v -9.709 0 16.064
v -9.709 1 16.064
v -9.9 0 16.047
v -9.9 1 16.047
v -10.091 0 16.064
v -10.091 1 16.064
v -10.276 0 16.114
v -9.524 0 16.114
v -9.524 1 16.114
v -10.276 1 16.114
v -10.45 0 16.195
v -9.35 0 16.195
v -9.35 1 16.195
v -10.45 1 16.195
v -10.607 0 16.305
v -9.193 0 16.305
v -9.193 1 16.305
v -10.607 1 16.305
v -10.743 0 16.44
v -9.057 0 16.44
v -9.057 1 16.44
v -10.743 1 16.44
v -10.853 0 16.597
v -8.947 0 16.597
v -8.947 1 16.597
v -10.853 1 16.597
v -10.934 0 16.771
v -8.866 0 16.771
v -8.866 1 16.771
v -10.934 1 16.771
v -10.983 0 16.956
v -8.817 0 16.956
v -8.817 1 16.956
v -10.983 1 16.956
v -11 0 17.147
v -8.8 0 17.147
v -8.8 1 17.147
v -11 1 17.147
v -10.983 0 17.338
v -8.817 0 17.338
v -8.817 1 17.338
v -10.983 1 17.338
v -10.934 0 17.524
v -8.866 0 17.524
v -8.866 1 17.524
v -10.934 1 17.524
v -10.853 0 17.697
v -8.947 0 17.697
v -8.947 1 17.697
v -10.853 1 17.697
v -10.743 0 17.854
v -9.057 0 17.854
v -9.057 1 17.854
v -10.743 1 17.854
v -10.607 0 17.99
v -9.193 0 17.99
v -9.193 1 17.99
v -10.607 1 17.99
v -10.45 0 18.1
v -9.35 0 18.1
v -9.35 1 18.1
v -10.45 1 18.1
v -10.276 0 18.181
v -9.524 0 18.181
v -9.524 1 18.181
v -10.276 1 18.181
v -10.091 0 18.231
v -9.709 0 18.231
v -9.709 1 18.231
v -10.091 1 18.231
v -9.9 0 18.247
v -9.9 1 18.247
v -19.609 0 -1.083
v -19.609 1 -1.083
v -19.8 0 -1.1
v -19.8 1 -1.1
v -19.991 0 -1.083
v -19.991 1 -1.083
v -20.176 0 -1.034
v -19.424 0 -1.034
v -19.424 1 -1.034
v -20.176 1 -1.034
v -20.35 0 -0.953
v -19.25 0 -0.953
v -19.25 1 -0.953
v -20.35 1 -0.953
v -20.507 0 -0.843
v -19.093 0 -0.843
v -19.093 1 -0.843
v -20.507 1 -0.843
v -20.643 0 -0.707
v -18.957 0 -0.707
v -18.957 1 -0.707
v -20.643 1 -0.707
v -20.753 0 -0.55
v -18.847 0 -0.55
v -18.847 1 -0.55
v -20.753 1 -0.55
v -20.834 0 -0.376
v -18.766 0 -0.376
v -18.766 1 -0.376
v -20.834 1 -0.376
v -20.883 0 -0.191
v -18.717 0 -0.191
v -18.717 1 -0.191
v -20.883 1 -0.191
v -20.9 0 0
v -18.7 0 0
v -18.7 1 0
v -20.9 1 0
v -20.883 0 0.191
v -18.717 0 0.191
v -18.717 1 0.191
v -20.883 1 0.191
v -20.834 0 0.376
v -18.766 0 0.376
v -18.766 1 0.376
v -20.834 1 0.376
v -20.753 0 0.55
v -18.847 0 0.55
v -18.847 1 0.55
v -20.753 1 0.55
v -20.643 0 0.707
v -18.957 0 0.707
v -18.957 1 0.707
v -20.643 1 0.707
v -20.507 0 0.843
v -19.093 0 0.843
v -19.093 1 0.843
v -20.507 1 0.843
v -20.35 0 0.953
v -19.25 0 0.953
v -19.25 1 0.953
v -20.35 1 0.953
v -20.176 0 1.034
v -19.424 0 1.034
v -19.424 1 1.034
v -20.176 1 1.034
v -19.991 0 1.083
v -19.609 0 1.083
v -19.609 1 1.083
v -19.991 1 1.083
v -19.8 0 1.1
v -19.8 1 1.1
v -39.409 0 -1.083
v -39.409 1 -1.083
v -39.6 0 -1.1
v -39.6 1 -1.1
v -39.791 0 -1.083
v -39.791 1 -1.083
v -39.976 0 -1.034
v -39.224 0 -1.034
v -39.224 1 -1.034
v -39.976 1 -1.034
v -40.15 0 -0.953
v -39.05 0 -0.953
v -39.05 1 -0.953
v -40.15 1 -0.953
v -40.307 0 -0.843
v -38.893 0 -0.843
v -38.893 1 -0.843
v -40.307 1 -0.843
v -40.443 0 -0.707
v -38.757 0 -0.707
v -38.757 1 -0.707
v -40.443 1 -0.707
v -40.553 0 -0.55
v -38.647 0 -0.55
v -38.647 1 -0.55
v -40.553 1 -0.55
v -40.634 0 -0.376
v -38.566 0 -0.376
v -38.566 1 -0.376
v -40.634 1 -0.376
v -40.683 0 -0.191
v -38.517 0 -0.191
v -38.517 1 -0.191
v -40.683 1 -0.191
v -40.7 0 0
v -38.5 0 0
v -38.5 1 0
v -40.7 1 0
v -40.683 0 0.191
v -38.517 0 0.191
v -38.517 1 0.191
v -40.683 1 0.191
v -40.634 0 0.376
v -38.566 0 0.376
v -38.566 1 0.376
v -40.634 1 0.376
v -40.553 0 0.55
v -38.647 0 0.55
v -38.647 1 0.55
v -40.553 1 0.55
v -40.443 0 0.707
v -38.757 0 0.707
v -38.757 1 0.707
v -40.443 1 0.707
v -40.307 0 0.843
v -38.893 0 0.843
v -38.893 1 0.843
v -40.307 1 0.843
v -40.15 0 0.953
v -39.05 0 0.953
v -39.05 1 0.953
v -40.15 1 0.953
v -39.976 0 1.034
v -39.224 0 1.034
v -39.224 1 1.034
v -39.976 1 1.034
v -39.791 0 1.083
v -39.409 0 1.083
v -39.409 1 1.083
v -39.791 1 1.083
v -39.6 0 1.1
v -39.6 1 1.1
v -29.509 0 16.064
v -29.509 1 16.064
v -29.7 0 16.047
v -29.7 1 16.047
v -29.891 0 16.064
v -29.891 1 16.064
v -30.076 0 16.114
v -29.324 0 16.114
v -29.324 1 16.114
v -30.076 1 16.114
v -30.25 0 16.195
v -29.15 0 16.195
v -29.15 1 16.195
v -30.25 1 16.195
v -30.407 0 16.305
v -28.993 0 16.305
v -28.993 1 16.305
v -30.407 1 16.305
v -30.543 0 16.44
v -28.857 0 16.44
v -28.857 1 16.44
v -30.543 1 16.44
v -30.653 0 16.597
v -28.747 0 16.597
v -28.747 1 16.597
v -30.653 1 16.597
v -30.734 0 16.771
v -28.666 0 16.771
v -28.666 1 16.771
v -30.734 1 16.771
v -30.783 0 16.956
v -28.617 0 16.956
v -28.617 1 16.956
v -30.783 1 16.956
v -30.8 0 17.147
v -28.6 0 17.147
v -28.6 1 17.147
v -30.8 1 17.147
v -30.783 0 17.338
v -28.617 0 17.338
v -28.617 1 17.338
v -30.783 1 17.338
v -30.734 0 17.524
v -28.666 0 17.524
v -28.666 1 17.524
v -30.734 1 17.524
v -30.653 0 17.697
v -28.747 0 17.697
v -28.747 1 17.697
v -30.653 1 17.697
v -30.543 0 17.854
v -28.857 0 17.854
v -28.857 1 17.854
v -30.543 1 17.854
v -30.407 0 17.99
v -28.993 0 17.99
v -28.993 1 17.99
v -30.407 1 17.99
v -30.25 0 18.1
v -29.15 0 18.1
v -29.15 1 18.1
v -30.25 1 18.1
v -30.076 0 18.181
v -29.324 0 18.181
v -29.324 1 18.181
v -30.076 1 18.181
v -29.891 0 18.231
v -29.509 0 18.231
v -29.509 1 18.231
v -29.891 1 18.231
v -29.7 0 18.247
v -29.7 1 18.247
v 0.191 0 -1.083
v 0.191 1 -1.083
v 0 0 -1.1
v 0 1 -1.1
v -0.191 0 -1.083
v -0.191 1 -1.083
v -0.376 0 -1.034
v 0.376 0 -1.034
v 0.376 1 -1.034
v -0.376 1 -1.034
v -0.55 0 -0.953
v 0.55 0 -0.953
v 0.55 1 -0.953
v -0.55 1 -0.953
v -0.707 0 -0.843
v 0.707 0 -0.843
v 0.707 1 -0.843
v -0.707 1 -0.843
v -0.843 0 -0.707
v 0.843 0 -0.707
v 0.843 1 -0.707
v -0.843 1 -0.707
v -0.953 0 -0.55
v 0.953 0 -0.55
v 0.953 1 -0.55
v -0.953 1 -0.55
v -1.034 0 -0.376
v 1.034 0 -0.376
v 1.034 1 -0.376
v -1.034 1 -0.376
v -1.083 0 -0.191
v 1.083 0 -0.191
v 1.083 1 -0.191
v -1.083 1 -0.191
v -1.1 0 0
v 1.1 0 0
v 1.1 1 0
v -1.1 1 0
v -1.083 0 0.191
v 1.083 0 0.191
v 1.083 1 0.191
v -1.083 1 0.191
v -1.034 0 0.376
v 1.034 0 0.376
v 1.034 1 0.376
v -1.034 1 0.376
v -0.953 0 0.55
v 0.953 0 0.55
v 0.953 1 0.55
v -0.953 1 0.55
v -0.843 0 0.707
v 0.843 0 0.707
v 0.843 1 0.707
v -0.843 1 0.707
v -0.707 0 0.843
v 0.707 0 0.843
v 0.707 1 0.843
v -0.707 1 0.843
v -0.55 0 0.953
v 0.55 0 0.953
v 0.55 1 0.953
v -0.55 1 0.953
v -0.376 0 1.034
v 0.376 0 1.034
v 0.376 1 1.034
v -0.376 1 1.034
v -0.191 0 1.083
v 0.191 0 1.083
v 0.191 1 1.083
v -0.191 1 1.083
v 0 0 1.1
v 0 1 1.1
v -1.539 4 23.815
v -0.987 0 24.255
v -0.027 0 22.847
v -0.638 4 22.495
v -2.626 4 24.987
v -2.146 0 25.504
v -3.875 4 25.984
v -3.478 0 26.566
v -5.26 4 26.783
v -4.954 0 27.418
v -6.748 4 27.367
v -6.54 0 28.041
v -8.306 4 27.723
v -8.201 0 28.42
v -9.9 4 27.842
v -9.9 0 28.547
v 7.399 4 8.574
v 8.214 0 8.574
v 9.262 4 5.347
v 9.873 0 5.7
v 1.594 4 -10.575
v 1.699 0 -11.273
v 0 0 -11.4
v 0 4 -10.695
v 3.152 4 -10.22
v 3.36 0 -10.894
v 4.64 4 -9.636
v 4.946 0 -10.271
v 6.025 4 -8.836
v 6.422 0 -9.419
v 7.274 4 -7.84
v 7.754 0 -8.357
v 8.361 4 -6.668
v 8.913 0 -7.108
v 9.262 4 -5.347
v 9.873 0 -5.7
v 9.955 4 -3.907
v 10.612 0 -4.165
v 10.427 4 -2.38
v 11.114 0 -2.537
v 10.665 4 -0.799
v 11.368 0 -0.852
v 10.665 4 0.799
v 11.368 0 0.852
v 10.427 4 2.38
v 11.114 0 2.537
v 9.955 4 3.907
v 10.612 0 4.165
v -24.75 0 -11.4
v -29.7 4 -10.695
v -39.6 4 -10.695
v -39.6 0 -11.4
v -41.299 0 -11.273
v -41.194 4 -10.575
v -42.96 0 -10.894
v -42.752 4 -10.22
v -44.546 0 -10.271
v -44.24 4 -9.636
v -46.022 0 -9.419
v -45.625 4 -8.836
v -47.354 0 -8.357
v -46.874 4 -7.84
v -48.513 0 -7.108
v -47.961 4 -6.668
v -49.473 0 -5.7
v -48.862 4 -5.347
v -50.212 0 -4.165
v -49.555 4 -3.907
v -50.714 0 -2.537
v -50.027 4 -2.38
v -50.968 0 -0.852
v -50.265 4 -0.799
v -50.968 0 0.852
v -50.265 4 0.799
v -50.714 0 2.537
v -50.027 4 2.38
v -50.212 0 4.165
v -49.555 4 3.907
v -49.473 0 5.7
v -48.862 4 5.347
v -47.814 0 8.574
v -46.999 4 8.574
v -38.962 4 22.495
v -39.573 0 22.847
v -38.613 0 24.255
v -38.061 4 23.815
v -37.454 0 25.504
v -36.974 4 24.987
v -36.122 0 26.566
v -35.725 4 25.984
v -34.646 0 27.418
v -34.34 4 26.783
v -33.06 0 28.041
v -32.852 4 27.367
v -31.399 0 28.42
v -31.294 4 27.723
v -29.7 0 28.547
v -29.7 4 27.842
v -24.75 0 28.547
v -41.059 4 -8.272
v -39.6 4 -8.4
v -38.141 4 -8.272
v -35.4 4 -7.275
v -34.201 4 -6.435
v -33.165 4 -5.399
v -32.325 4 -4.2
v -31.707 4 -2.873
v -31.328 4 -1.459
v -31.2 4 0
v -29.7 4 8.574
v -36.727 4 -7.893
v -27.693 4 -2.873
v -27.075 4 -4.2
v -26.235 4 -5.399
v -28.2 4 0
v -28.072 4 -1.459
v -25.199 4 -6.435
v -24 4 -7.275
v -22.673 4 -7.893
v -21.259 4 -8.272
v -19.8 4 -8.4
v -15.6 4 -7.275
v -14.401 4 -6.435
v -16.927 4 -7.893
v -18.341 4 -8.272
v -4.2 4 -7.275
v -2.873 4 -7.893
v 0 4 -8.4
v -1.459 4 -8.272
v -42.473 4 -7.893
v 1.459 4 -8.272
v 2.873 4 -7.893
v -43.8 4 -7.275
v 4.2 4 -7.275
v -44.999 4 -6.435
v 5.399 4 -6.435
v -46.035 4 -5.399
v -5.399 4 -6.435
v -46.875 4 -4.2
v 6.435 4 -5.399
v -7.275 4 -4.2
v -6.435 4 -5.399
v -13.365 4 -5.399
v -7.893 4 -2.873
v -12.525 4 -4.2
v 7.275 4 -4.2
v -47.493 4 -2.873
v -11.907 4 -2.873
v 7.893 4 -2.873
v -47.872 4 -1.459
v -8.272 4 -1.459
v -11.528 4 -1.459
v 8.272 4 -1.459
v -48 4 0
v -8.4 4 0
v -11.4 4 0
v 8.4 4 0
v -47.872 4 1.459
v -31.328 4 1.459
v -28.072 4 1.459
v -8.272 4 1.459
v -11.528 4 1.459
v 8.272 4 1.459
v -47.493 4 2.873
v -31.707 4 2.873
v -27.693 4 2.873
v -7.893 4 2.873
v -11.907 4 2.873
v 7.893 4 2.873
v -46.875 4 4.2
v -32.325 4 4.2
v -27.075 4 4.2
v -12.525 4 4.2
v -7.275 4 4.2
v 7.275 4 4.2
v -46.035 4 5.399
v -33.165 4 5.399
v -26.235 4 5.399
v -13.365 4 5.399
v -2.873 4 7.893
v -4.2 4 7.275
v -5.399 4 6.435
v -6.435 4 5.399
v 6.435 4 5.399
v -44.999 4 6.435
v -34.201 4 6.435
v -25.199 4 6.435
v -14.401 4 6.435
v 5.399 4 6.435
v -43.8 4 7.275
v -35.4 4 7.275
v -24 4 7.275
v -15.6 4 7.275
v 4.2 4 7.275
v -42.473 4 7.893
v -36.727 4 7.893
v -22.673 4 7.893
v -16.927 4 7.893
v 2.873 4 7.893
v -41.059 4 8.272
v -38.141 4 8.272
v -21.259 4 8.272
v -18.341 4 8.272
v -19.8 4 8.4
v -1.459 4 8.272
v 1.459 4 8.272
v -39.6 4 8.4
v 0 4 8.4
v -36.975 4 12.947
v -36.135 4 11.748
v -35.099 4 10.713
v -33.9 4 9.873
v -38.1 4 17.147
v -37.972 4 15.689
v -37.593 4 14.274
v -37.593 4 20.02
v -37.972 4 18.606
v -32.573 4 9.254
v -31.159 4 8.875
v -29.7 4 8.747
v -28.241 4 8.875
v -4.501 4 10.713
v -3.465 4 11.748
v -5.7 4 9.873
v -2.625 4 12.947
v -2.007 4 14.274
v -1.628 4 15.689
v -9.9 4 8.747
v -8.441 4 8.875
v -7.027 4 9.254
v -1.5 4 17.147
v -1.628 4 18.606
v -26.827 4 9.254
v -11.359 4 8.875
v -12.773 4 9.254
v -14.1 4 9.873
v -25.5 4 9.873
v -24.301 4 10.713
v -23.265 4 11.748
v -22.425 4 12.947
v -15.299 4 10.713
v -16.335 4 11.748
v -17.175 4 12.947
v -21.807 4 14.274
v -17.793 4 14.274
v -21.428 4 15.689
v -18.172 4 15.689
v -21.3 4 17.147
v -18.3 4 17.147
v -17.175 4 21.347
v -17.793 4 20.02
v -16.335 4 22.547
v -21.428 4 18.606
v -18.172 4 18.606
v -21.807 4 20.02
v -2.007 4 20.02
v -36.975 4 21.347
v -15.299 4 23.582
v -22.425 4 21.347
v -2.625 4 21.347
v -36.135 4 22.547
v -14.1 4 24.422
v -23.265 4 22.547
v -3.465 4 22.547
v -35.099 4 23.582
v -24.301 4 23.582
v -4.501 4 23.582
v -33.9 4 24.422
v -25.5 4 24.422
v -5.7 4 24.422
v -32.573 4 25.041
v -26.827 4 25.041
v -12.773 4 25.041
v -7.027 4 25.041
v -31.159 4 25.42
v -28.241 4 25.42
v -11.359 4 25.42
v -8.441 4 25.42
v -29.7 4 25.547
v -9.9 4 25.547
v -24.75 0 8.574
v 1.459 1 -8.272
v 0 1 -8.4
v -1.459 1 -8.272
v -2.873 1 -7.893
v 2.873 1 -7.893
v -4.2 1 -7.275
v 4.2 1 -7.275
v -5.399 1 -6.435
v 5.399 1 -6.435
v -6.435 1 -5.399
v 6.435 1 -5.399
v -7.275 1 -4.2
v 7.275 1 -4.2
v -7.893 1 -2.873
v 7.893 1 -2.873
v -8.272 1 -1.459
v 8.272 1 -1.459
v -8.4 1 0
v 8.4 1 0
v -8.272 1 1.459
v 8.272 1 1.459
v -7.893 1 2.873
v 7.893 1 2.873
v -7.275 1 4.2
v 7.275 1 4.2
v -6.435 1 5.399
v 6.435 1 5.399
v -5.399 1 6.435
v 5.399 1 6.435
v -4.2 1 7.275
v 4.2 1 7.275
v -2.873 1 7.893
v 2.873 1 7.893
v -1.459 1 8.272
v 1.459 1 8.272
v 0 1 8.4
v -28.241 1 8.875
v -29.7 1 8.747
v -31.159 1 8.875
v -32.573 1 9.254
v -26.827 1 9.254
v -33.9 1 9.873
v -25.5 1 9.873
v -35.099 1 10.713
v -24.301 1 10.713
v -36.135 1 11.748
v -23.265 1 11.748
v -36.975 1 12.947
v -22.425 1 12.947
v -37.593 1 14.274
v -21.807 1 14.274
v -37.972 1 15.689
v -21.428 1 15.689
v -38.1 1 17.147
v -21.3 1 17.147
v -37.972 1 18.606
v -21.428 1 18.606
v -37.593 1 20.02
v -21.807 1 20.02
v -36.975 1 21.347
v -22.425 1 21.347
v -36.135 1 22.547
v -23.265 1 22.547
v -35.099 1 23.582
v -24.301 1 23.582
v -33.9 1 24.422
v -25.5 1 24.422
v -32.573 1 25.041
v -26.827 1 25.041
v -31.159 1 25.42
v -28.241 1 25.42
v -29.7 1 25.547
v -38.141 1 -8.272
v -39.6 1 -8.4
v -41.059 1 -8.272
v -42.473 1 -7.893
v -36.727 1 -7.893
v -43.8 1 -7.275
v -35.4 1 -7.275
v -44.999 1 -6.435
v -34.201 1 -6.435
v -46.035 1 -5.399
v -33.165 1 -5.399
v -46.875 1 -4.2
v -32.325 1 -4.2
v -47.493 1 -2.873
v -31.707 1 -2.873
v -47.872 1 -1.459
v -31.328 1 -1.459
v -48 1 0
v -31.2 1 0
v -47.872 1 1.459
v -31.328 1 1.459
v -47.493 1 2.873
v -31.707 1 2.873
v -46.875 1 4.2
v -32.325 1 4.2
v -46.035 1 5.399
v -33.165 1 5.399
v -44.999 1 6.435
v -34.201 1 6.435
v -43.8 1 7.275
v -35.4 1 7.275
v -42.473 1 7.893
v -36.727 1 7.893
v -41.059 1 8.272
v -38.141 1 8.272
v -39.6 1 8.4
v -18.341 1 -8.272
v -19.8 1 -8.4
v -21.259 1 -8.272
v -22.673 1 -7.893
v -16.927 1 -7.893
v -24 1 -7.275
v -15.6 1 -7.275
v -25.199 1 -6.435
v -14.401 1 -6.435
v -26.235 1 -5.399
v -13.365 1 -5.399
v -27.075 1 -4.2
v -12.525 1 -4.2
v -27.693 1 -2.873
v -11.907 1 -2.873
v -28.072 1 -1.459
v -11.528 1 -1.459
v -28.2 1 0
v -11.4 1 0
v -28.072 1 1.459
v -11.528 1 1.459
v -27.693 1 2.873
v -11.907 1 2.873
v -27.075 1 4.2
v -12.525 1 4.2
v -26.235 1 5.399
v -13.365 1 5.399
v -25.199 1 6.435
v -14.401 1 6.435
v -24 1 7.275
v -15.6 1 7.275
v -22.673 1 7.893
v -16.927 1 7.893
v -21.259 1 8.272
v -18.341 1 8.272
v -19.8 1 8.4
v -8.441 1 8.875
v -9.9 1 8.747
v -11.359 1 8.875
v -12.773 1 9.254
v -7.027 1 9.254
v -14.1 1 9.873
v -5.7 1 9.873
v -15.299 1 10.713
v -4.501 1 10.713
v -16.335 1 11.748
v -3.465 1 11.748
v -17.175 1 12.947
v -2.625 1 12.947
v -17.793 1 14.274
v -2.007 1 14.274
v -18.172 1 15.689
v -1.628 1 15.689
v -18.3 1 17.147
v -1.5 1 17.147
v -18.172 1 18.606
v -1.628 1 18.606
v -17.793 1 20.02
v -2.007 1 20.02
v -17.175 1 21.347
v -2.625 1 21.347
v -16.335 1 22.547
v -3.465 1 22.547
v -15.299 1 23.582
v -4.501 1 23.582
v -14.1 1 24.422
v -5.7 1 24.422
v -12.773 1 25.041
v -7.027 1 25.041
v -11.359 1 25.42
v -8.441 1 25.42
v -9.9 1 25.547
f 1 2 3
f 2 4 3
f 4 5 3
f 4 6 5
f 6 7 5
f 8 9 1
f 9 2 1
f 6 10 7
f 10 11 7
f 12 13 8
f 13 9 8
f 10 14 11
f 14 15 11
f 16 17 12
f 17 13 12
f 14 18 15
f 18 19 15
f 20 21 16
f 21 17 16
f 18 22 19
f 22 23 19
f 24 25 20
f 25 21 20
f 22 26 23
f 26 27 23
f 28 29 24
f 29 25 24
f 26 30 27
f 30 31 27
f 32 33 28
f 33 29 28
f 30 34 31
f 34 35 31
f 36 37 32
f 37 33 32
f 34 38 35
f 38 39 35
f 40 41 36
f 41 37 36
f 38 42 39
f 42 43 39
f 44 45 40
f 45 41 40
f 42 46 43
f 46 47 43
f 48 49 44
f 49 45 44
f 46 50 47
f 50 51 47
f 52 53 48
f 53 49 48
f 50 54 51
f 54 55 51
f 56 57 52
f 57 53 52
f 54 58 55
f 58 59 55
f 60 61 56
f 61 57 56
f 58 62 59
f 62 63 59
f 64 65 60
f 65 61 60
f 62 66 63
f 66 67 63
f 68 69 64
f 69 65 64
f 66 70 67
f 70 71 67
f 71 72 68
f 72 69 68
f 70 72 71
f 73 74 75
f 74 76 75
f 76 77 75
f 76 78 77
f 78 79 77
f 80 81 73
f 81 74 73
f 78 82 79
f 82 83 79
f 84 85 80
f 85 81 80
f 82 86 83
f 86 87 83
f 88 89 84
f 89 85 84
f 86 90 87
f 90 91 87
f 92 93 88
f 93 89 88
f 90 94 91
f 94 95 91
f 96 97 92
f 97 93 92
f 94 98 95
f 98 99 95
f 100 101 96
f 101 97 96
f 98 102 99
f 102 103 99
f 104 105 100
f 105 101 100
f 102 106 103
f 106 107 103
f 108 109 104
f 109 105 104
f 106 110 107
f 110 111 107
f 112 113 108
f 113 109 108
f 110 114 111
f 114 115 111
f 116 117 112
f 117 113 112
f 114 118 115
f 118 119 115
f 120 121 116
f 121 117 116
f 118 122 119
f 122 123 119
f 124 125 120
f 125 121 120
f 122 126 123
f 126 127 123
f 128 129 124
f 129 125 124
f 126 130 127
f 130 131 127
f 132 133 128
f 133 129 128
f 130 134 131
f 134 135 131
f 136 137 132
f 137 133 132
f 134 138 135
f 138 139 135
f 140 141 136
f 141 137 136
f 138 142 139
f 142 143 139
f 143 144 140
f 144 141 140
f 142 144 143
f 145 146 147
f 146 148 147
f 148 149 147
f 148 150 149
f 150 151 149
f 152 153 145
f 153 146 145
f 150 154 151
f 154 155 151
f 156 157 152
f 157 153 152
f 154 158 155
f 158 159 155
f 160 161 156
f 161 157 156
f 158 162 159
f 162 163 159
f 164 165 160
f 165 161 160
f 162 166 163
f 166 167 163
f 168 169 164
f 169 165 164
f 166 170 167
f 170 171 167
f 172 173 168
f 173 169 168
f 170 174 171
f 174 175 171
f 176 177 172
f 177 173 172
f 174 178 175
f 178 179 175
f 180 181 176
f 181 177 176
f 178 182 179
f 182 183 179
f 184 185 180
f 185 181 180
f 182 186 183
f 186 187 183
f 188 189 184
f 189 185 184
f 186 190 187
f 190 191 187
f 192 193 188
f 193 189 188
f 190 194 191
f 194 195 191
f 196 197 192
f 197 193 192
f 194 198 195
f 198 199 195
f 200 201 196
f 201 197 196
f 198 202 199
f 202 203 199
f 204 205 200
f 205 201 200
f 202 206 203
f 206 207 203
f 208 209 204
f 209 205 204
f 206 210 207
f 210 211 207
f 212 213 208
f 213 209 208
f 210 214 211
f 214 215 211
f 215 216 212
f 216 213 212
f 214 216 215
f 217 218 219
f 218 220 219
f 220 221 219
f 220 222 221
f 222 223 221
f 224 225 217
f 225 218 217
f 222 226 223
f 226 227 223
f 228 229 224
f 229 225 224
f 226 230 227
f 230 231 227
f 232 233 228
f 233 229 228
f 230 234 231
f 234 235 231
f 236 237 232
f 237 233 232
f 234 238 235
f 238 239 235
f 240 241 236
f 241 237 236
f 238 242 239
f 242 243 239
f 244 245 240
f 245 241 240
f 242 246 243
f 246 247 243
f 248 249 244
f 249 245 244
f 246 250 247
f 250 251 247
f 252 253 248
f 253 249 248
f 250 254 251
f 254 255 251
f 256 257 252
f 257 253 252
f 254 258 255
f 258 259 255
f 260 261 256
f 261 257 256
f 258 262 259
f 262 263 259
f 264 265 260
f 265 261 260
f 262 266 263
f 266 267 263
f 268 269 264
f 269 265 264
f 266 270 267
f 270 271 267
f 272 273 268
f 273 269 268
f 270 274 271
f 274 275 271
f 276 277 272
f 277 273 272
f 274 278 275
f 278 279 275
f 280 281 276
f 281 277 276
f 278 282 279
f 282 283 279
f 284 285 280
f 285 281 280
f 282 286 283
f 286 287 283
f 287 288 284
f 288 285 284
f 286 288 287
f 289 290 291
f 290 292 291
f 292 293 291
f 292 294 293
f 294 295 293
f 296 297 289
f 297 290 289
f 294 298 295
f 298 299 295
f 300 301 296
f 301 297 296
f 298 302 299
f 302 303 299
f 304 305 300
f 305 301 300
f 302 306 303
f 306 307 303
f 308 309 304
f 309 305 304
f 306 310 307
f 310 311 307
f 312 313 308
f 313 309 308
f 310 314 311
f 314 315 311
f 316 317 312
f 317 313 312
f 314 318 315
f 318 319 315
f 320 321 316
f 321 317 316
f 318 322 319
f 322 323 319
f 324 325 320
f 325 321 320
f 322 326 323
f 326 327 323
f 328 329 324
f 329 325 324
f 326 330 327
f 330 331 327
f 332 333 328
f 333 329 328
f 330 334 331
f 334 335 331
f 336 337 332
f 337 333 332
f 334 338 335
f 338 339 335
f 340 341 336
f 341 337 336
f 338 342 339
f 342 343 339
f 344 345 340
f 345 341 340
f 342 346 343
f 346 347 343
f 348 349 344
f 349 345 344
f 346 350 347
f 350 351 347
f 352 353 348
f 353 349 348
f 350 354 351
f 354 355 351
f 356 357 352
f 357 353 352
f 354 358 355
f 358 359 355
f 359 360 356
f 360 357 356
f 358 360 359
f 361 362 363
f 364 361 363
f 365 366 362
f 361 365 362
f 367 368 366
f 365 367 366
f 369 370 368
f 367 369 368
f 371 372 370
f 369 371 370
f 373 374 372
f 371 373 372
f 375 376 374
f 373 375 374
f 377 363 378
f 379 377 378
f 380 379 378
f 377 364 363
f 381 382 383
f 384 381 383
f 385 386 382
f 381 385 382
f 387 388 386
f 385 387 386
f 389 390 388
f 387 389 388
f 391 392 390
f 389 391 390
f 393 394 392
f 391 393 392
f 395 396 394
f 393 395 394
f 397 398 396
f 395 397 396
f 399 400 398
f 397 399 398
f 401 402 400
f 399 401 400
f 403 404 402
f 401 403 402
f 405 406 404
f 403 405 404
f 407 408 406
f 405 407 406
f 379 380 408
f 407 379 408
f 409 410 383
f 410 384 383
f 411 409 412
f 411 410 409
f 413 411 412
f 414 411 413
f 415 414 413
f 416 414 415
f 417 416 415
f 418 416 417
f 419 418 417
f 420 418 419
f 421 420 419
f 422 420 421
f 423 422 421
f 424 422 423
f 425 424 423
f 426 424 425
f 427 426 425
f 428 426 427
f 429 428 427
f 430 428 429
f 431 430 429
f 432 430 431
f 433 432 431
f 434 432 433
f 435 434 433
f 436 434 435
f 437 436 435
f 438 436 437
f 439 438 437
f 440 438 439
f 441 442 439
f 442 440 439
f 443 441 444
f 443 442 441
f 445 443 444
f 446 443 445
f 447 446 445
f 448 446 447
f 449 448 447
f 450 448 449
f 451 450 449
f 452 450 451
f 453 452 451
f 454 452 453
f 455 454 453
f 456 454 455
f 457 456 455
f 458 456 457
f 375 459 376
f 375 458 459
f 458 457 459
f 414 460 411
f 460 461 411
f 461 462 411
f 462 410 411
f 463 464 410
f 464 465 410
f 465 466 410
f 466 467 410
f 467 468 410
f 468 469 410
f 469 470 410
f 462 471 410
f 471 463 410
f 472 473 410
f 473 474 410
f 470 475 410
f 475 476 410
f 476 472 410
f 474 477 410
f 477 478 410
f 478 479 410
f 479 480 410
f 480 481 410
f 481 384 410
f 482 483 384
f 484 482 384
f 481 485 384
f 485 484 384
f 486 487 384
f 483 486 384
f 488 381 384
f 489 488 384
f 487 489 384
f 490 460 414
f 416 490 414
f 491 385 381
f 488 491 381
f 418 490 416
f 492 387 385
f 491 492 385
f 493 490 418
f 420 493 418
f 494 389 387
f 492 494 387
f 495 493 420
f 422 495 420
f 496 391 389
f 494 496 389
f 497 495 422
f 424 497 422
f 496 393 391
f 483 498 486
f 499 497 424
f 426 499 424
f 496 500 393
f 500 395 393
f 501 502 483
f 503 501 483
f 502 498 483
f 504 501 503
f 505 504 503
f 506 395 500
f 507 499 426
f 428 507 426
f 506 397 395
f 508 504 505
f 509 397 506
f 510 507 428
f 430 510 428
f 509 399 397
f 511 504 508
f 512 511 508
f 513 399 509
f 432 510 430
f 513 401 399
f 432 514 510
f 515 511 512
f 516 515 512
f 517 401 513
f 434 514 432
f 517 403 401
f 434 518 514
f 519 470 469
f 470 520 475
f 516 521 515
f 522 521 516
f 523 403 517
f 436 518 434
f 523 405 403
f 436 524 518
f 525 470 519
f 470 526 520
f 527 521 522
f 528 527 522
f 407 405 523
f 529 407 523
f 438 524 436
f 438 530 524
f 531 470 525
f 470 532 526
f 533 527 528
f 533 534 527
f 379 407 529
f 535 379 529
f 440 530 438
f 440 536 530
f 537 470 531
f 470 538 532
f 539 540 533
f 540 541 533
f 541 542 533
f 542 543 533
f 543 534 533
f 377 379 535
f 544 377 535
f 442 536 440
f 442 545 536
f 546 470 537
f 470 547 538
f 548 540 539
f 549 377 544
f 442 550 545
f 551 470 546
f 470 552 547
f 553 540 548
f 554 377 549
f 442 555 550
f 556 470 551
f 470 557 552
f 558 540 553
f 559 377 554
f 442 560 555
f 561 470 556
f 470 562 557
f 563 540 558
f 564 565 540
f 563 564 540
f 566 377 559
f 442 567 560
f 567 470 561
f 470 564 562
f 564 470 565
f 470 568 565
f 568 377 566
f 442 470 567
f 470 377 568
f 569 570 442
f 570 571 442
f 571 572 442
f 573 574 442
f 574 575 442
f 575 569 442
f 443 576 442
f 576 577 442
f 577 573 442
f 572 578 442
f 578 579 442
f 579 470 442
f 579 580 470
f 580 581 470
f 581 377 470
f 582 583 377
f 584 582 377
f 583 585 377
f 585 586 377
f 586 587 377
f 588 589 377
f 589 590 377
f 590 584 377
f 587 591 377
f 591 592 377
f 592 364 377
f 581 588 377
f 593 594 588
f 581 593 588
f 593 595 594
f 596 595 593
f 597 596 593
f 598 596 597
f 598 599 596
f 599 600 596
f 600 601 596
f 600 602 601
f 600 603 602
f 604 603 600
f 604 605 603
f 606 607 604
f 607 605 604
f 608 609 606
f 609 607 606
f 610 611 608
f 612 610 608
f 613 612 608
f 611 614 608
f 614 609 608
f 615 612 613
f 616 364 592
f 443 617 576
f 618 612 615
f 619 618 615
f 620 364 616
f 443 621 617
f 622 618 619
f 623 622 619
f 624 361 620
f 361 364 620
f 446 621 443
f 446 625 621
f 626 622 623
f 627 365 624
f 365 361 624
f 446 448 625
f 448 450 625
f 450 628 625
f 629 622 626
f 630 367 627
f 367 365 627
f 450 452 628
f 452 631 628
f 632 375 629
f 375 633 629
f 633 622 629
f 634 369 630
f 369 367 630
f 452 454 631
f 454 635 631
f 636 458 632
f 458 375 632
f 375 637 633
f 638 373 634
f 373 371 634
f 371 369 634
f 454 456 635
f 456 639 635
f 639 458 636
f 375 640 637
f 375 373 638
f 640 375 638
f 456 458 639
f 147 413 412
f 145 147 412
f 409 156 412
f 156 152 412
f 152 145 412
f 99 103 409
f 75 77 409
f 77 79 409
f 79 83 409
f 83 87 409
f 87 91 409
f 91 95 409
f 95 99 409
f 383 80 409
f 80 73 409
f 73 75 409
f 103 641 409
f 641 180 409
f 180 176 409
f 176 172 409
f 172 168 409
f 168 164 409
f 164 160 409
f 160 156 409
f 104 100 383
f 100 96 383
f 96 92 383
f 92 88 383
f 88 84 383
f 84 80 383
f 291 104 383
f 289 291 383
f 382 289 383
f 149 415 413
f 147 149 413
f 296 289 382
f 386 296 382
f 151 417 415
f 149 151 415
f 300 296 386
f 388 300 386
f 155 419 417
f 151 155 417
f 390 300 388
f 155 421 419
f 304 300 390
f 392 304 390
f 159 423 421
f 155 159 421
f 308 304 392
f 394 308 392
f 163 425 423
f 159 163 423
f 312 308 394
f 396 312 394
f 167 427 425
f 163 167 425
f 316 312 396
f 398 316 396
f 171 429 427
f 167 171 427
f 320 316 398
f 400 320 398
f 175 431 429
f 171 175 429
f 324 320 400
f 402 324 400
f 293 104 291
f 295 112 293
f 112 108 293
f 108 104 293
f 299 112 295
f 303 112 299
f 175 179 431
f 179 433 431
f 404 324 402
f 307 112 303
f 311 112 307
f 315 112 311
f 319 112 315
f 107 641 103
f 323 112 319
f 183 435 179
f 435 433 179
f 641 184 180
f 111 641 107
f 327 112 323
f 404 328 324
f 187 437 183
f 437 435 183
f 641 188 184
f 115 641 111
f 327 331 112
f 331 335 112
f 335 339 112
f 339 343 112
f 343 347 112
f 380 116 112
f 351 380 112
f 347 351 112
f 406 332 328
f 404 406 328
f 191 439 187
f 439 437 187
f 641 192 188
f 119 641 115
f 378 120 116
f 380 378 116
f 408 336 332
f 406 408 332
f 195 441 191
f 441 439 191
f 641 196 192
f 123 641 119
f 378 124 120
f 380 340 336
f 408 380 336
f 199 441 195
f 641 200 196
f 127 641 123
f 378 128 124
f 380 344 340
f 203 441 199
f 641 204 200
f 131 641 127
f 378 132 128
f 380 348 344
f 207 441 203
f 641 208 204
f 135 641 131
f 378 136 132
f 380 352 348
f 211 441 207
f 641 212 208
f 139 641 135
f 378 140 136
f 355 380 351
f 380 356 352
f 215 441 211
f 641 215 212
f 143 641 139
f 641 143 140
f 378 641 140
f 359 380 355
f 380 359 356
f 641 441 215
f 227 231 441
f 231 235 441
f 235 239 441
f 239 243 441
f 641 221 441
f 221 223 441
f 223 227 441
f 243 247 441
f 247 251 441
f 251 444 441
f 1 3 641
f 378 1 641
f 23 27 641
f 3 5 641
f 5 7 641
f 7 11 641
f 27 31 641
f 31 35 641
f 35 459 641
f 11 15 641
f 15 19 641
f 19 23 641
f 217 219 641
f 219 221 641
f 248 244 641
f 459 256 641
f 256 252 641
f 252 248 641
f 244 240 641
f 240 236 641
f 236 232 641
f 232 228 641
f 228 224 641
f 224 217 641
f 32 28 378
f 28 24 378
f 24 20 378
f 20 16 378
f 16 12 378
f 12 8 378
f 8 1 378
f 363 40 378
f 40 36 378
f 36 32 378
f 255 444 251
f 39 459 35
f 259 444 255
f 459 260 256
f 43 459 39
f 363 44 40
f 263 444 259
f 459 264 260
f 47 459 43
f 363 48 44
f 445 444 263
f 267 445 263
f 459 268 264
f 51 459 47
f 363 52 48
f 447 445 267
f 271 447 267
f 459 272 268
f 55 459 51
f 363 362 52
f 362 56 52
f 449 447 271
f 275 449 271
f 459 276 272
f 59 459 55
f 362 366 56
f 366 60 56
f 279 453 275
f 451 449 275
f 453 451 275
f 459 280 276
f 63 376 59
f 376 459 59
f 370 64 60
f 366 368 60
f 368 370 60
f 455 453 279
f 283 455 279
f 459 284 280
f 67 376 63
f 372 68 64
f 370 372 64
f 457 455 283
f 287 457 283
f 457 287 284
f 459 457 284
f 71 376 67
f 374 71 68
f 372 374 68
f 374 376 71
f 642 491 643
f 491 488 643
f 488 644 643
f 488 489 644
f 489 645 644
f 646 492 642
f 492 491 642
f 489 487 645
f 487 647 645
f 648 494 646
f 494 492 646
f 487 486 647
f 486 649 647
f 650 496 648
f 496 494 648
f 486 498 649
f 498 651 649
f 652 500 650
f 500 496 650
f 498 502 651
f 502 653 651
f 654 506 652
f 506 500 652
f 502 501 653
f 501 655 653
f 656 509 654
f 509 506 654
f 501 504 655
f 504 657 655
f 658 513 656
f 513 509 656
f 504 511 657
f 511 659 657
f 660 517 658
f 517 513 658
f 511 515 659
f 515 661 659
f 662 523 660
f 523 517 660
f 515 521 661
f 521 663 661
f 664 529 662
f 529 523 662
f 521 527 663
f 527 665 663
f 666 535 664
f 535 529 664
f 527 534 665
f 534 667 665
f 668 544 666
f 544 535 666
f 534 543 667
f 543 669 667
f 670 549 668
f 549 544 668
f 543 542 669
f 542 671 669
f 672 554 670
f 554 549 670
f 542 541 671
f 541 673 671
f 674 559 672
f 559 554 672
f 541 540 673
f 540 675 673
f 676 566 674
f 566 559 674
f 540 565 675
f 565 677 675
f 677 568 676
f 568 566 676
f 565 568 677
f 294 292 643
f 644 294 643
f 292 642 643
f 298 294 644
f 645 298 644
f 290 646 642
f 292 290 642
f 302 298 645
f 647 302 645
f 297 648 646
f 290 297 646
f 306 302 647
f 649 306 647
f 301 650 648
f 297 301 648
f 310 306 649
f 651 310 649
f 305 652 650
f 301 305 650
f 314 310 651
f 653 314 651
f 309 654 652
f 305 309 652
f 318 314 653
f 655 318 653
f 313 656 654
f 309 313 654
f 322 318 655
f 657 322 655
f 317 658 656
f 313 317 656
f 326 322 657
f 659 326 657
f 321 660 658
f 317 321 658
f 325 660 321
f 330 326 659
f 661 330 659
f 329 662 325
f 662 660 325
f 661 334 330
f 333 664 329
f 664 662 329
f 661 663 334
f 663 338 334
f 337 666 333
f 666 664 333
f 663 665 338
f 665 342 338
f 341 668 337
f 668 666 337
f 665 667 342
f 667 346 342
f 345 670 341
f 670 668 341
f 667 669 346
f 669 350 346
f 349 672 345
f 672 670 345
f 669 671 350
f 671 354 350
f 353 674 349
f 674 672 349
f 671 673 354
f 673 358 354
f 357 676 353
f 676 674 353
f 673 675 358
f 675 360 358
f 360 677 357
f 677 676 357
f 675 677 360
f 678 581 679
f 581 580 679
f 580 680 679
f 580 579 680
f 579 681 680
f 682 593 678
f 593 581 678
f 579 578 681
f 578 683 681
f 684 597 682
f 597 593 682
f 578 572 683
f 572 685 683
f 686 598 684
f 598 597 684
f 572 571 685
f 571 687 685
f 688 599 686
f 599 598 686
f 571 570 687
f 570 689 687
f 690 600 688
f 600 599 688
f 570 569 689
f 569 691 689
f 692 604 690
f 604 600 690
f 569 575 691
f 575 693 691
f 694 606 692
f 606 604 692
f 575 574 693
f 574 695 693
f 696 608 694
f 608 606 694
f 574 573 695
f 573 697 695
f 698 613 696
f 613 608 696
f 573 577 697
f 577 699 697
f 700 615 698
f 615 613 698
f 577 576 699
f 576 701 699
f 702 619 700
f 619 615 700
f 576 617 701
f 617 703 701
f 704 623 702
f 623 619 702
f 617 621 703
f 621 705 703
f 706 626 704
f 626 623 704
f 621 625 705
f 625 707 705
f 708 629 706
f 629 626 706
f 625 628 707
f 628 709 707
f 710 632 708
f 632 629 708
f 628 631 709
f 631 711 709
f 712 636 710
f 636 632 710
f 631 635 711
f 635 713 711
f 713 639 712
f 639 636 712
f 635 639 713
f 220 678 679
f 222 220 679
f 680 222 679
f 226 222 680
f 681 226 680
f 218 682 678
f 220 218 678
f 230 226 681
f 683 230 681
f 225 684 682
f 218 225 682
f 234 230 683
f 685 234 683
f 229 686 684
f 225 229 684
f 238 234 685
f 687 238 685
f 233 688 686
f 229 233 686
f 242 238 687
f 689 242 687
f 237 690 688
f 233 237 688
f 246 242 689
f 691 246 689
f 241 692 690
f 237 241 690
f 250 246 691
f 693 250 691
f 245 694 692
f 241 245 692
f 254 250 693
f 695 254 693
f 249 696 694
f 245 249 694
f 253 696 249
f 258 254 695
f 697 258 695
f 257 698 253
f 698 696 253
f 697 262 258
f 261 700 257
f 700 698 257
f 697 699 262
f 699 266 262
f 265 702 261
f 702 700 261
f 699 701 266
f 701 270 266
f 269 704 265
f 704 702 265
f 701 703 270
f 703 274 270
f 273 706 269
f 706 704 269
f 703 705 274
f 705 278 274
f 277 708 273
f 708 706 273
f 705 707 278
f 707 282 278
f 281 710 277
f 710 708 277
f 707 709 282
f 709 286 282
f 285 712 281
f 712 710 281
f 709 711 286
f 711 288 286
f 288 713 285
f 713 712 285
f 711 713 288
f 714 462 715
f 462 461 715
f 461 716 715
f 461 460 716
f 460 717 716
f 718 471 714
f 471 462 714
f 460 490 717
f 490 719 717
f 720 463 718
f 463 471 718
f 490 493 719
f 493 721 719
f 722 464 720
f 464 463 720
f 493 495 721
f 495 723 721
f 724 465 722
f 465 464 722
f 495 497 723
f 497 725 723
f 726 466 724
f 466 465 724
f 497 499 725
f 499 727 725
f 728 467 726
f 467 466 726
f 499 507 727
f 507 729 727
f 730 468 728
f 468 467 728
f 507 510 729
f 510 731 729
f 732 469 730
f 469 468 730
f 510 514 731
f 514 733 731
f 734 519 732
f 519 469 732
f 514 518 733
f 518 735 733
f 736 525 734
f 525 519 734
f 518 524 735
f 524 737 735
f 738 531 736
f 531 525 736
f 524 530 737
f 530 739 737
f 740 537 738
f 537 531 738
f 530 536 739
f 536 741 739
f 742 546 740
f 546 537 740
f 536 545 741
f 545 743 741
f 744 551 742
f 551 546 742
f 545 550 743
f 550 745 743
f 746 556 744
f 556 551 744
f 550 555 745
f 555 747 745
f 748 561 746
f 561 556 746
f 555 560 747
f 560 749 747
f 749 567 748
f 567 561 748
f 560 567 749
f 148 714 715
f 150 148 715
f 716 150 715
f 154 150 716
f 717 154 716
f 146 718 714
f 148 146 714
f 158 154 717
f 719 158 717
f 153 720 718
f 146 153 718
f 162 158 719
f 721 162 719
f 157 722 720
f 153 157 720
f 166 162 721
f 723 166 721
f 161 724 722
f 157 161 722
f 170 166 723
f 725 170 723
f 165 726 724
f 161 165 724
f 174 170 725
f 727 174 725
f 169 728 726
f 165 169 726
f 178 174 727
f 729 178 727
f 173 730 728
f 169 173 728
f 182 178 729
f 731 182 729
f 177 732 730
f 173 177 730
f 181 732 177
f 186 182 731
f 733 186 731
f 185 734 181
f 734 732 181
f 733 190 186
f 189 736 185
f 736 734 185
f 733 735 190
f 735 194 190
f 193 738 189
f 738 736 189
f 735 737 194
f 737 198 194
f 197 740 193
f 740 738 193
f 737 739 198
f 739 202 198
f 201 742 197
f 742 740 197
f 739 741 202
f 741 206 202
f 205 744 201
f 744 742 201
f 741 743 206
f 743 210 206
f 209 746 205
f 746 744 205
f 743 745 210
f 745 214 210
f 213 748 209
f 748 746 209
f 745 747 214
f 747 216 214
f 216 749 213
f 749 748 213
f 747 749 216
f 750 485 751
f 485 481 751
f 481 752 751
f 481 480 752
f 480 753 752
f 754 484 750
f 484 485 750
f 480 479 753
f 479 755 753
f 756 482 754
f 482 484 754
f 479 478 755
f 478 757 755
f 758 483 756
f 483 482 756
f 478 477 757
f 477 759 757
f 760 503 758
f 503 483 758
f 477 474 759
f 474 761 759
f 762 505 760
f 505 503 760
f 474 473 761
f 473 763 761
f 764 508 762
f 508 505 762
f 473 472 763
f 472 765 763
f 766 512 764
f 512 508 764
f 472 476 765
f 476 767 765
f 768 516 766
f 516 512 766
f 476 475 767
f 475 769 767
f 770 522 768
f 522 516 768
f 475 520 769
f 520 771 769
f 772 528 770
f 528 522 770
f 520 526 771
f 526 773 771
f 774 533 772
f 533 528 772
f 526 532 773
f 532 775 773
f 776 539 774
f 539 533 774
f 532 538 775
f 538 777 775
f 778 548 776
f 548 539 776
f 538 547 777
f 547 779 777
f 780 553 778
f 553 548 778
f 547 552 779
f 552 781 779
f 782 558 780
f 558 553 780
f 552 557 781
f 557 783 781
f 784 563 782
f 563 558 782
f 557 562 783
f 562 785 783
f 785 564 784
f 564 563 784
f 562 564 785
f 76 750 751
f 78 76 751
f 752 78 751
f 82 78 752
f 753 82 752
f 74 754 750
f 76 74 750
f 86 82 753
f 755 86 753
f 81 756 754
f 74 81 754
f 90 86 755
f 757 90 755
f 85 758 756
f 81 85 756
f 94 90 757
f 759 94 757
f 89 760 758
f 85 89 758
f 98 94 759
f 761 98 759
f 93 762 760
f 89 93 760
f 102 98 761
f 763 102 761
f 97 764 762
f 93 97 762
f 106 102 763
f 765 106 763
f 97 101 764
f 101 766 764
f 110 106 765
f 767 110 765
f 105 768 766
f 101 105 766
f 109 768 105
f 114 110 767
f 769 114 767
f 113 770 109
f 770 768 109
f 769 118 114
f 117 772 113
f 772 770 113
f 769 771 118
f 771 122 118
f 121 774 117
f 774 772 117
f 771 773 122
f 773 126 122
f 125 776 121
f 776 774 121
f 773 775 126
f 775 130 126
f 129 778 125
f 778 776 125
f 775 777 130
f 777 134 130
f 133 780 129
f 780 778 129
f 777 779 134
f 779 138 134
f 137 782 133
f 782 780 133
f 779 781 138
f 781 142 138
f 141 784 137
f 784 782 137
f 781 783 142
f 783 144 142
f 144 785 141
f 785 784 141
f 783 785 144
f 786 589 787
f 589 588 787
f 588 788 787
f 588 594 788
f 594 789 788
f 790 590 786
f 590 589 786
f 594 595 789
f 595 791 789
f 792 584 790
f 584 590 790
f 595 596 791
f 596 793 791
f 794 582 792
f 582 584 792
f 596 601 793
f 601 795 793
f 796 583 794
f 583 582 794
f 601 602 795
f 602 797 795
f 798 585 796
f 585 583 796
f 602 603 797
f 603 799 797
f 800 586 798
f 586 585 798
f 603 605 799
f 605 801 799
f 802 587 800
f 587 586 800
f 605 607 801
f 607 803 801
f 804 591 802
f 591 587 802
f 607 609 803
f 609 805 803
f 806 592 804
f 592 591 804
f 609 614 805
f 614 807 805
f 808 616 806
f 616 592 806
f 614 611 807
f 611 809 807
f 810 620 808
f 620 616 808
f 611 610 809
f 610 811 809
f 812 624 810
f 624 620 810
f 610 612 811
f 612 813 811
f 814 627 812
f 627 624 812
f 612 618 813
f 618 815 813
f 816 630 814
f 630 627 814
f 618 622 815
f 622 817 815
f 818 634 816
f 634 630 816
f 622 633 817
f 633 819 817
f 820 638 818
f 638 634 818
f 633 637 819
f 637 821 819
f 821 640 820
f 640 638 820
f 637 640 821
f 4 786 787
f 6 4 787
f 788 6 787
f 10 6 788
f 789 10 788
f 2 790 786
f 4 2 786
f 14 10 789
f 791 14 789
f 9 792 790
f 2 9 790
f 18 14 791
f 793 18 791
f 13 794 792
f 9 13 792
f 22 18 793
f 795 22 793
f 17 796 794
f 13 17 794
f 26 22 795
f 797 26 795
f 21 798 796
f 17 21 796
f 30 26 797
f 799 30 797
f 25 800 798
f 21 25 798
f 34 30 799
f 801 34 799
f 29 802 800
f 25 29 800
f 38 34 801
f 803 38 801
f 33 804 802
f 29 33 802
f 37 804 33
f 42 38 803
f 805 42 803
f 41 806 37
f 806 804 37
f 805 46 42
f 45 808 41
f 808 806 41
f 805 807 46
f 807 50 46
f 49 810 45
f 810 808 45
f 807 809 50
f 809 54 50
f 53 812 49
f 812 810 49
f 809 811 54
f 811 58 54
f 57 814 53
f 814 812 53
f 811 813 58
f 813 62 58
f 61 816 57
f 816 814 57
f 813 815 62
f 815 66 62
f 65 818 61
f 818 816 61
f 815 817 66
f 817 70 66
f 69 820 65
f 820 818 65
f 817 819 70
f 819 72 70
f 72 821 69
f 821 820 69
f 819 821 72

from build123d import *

# Parameters (mm, degrees)
BOSS_EXTRUDE1_DEPTH = 4
BOSS_EXTRUDE1_TAPER = 10
CUT_EXTRUDE1_START  = 4
SKETCH1_3_R         = 1.1
CUT_EXTRUDE1_DEPTH  = 4
CUT_EXTRUDE2_START  = 4
SKETCH1_4_R         = 8.4
SKETCH1_4_R_2       = 1.1
CUT_EXTRUDE2_DEPTH  = 3


with BuildPart() as part:
    # Sketch1 → Boss-Extrude1 (new body)
    with BuildSketch(Plane(origin=(0, 0, 0), x_dir=(1, 0, 0), z_dir=(0, 1, 0))):
        with BuildLine():
            Line((-49.472689603, -5.7), (-39.572689603, -22.847302995))
            ThreePointArc((-39.572689603, -22.847302995), (-35.4, -27.019992598), (-29.7, -28.547302995))
            Line((-29.7, -28.547302995), (-9.9, -28.547302995))
            ThreePointArc((-9.9, -28.547302995), (-4.2, -27.019992598), (-0.027310397, -22.847302995))
            Line((-0.027310397, -22.847302995), (9.872689603, -5.7))
            ThreePointArc((9.872689603, -5.7), (9.872689603, 5.7), (0, 11.4))
            Line((0, 11.4), (-39.6, 11.4))
            ThreePointArc((-39.6, 11.4), (-49.472689603, 5.7), (-49.472689603, -5.7))
        make_face()
    extrude(amount=BOSS_EXTRUDE1_DEPTH, taper=BOSS_EXTRUDE1_TAPER)

    # Sketch1<3> → Cut-Extrude1 (cut)
    with BuildSketch(Plane(origin=(0, 0, 0), x_dir=(1, 0, 0), z_dir=(0, 1, 0)).offset(CUT_EXTRUDE1_START)):
        with Locations(Location((-9.9, -17.147302995, 0), (0, 0, 270))):
            Circle(SKETCH1_3_R)
        with Locations(Location((0, 0, 0), (0, 0, 270))):
            Circle(SKETCH1_3_R)
        with Locations(Location((-29.7, -17.147302995, 0), (0, 0, 270))):
            Circle(SKETCH1_3_R)
        with Locations(Location((-39.6, 0, 0), (0, 0, 270))):
            Circle(SKETCH1_3_R)
        with Locations(Location((-19.8, 0, 0), (0, 0, 270))):
            Circle(SKETCH1_3_R)
    extrude(amount=-CUT_EXTRUDE1_DEPTH, mode=Mode.SUBTRACT)

    # Sketch1<4> → Cut-Extrude2 (cut)
    # profile 1 of 5: a face of its own
    with BuildSketch(Plane(origin=(0, 0, 0), x_dir=(1, 0, 0), z_dir=(0, 1, 0)).offset(CUT_EXTRUDE2_START)):
        with Locations(Location((-19.8, 0, 0), (0, 0, 270))):
            Circle(SKETCH1_4_R)
        with Locations(Location((-19.8, 0, 0), (0, 0, 270))):
            Circle(SKETCH1_4_R_2, mode=Mode.SUBTRACT)
    # profile 2 of 5: a face of its own
    with BuildSketch(Plane(origin=(0, 0, 0), x_dir=(1, 0, 0), z_dir=(0, 1, 0)).offset(CUT_EXTRUDE2_START)):
        with Locations(Location((-9.9, -17.147302995, 0), (0, 0, 270))):
            Circle(SKETCH1_4_R)
        with Locations(Location((-9.9, -17.147302995, 0), (0, 0, 270))):
            Circle(SKETCH1_4_R_2, mode=Mode.SUBTRACT)
    # profile 3 of 5: a face of its own
    with BuildSketch(Plane(origin=(0, 0, 0), x_dir=(1, 0, 0), z_dir=(0, 1, 0)).offset(CUT_EXTRUDE2_START)):
        with Locations(Location((0, 0, 0), (0, 0, 270))):
            Circle(SKETCH1_4_R)
        with Locations(Location((0, 0, 0), (0, 0, 270))):
            Circle(SKETCH1_4_R_2, mode=Mode.SUBTRACT)
    # profile 4 of 5: a face of its own
    with BuildSketch(Plane(origin=(0, 0, 0), x_dir=(1, 0, 0), z_dir=(0, 1, 0)).offset(CUT_EXTRUDE2_START)):
        with Locations(Location((-29.7, -17.147302995, 0), (0, 0, 270))):
            Circle(SKETCH1_4_R)
        with Locations(Location((-29.7, -17.147302995, 0), (0, 0, 270))):
            Circle(SKETCH1_4_R_2, mode=Mode.SUBTRACT)
    # profile 5 of 5: a face of its own
    with BuildSketch(Plane(origin=(0, 0, 0), x_dir=(1, 0, 0), z_dir=(0, 1, 0)).offset(CUT_EXTRUDE2_START)):
        with Locations(Location((-39.6, 0, 0), (0, 0, 270))):
            Circle(SKETCH1_4_R)
        with Locations(Location((-39.6, 0, 0), (0, 0, 270))):
            Circle(SKETCH1_4_R_2, mode=Mode.SUBTRACT)
    extrude(amount=-CUT_EXTRUDE2_DEPTH, mode=Mode.SUBTRACT)


solid = part.part
